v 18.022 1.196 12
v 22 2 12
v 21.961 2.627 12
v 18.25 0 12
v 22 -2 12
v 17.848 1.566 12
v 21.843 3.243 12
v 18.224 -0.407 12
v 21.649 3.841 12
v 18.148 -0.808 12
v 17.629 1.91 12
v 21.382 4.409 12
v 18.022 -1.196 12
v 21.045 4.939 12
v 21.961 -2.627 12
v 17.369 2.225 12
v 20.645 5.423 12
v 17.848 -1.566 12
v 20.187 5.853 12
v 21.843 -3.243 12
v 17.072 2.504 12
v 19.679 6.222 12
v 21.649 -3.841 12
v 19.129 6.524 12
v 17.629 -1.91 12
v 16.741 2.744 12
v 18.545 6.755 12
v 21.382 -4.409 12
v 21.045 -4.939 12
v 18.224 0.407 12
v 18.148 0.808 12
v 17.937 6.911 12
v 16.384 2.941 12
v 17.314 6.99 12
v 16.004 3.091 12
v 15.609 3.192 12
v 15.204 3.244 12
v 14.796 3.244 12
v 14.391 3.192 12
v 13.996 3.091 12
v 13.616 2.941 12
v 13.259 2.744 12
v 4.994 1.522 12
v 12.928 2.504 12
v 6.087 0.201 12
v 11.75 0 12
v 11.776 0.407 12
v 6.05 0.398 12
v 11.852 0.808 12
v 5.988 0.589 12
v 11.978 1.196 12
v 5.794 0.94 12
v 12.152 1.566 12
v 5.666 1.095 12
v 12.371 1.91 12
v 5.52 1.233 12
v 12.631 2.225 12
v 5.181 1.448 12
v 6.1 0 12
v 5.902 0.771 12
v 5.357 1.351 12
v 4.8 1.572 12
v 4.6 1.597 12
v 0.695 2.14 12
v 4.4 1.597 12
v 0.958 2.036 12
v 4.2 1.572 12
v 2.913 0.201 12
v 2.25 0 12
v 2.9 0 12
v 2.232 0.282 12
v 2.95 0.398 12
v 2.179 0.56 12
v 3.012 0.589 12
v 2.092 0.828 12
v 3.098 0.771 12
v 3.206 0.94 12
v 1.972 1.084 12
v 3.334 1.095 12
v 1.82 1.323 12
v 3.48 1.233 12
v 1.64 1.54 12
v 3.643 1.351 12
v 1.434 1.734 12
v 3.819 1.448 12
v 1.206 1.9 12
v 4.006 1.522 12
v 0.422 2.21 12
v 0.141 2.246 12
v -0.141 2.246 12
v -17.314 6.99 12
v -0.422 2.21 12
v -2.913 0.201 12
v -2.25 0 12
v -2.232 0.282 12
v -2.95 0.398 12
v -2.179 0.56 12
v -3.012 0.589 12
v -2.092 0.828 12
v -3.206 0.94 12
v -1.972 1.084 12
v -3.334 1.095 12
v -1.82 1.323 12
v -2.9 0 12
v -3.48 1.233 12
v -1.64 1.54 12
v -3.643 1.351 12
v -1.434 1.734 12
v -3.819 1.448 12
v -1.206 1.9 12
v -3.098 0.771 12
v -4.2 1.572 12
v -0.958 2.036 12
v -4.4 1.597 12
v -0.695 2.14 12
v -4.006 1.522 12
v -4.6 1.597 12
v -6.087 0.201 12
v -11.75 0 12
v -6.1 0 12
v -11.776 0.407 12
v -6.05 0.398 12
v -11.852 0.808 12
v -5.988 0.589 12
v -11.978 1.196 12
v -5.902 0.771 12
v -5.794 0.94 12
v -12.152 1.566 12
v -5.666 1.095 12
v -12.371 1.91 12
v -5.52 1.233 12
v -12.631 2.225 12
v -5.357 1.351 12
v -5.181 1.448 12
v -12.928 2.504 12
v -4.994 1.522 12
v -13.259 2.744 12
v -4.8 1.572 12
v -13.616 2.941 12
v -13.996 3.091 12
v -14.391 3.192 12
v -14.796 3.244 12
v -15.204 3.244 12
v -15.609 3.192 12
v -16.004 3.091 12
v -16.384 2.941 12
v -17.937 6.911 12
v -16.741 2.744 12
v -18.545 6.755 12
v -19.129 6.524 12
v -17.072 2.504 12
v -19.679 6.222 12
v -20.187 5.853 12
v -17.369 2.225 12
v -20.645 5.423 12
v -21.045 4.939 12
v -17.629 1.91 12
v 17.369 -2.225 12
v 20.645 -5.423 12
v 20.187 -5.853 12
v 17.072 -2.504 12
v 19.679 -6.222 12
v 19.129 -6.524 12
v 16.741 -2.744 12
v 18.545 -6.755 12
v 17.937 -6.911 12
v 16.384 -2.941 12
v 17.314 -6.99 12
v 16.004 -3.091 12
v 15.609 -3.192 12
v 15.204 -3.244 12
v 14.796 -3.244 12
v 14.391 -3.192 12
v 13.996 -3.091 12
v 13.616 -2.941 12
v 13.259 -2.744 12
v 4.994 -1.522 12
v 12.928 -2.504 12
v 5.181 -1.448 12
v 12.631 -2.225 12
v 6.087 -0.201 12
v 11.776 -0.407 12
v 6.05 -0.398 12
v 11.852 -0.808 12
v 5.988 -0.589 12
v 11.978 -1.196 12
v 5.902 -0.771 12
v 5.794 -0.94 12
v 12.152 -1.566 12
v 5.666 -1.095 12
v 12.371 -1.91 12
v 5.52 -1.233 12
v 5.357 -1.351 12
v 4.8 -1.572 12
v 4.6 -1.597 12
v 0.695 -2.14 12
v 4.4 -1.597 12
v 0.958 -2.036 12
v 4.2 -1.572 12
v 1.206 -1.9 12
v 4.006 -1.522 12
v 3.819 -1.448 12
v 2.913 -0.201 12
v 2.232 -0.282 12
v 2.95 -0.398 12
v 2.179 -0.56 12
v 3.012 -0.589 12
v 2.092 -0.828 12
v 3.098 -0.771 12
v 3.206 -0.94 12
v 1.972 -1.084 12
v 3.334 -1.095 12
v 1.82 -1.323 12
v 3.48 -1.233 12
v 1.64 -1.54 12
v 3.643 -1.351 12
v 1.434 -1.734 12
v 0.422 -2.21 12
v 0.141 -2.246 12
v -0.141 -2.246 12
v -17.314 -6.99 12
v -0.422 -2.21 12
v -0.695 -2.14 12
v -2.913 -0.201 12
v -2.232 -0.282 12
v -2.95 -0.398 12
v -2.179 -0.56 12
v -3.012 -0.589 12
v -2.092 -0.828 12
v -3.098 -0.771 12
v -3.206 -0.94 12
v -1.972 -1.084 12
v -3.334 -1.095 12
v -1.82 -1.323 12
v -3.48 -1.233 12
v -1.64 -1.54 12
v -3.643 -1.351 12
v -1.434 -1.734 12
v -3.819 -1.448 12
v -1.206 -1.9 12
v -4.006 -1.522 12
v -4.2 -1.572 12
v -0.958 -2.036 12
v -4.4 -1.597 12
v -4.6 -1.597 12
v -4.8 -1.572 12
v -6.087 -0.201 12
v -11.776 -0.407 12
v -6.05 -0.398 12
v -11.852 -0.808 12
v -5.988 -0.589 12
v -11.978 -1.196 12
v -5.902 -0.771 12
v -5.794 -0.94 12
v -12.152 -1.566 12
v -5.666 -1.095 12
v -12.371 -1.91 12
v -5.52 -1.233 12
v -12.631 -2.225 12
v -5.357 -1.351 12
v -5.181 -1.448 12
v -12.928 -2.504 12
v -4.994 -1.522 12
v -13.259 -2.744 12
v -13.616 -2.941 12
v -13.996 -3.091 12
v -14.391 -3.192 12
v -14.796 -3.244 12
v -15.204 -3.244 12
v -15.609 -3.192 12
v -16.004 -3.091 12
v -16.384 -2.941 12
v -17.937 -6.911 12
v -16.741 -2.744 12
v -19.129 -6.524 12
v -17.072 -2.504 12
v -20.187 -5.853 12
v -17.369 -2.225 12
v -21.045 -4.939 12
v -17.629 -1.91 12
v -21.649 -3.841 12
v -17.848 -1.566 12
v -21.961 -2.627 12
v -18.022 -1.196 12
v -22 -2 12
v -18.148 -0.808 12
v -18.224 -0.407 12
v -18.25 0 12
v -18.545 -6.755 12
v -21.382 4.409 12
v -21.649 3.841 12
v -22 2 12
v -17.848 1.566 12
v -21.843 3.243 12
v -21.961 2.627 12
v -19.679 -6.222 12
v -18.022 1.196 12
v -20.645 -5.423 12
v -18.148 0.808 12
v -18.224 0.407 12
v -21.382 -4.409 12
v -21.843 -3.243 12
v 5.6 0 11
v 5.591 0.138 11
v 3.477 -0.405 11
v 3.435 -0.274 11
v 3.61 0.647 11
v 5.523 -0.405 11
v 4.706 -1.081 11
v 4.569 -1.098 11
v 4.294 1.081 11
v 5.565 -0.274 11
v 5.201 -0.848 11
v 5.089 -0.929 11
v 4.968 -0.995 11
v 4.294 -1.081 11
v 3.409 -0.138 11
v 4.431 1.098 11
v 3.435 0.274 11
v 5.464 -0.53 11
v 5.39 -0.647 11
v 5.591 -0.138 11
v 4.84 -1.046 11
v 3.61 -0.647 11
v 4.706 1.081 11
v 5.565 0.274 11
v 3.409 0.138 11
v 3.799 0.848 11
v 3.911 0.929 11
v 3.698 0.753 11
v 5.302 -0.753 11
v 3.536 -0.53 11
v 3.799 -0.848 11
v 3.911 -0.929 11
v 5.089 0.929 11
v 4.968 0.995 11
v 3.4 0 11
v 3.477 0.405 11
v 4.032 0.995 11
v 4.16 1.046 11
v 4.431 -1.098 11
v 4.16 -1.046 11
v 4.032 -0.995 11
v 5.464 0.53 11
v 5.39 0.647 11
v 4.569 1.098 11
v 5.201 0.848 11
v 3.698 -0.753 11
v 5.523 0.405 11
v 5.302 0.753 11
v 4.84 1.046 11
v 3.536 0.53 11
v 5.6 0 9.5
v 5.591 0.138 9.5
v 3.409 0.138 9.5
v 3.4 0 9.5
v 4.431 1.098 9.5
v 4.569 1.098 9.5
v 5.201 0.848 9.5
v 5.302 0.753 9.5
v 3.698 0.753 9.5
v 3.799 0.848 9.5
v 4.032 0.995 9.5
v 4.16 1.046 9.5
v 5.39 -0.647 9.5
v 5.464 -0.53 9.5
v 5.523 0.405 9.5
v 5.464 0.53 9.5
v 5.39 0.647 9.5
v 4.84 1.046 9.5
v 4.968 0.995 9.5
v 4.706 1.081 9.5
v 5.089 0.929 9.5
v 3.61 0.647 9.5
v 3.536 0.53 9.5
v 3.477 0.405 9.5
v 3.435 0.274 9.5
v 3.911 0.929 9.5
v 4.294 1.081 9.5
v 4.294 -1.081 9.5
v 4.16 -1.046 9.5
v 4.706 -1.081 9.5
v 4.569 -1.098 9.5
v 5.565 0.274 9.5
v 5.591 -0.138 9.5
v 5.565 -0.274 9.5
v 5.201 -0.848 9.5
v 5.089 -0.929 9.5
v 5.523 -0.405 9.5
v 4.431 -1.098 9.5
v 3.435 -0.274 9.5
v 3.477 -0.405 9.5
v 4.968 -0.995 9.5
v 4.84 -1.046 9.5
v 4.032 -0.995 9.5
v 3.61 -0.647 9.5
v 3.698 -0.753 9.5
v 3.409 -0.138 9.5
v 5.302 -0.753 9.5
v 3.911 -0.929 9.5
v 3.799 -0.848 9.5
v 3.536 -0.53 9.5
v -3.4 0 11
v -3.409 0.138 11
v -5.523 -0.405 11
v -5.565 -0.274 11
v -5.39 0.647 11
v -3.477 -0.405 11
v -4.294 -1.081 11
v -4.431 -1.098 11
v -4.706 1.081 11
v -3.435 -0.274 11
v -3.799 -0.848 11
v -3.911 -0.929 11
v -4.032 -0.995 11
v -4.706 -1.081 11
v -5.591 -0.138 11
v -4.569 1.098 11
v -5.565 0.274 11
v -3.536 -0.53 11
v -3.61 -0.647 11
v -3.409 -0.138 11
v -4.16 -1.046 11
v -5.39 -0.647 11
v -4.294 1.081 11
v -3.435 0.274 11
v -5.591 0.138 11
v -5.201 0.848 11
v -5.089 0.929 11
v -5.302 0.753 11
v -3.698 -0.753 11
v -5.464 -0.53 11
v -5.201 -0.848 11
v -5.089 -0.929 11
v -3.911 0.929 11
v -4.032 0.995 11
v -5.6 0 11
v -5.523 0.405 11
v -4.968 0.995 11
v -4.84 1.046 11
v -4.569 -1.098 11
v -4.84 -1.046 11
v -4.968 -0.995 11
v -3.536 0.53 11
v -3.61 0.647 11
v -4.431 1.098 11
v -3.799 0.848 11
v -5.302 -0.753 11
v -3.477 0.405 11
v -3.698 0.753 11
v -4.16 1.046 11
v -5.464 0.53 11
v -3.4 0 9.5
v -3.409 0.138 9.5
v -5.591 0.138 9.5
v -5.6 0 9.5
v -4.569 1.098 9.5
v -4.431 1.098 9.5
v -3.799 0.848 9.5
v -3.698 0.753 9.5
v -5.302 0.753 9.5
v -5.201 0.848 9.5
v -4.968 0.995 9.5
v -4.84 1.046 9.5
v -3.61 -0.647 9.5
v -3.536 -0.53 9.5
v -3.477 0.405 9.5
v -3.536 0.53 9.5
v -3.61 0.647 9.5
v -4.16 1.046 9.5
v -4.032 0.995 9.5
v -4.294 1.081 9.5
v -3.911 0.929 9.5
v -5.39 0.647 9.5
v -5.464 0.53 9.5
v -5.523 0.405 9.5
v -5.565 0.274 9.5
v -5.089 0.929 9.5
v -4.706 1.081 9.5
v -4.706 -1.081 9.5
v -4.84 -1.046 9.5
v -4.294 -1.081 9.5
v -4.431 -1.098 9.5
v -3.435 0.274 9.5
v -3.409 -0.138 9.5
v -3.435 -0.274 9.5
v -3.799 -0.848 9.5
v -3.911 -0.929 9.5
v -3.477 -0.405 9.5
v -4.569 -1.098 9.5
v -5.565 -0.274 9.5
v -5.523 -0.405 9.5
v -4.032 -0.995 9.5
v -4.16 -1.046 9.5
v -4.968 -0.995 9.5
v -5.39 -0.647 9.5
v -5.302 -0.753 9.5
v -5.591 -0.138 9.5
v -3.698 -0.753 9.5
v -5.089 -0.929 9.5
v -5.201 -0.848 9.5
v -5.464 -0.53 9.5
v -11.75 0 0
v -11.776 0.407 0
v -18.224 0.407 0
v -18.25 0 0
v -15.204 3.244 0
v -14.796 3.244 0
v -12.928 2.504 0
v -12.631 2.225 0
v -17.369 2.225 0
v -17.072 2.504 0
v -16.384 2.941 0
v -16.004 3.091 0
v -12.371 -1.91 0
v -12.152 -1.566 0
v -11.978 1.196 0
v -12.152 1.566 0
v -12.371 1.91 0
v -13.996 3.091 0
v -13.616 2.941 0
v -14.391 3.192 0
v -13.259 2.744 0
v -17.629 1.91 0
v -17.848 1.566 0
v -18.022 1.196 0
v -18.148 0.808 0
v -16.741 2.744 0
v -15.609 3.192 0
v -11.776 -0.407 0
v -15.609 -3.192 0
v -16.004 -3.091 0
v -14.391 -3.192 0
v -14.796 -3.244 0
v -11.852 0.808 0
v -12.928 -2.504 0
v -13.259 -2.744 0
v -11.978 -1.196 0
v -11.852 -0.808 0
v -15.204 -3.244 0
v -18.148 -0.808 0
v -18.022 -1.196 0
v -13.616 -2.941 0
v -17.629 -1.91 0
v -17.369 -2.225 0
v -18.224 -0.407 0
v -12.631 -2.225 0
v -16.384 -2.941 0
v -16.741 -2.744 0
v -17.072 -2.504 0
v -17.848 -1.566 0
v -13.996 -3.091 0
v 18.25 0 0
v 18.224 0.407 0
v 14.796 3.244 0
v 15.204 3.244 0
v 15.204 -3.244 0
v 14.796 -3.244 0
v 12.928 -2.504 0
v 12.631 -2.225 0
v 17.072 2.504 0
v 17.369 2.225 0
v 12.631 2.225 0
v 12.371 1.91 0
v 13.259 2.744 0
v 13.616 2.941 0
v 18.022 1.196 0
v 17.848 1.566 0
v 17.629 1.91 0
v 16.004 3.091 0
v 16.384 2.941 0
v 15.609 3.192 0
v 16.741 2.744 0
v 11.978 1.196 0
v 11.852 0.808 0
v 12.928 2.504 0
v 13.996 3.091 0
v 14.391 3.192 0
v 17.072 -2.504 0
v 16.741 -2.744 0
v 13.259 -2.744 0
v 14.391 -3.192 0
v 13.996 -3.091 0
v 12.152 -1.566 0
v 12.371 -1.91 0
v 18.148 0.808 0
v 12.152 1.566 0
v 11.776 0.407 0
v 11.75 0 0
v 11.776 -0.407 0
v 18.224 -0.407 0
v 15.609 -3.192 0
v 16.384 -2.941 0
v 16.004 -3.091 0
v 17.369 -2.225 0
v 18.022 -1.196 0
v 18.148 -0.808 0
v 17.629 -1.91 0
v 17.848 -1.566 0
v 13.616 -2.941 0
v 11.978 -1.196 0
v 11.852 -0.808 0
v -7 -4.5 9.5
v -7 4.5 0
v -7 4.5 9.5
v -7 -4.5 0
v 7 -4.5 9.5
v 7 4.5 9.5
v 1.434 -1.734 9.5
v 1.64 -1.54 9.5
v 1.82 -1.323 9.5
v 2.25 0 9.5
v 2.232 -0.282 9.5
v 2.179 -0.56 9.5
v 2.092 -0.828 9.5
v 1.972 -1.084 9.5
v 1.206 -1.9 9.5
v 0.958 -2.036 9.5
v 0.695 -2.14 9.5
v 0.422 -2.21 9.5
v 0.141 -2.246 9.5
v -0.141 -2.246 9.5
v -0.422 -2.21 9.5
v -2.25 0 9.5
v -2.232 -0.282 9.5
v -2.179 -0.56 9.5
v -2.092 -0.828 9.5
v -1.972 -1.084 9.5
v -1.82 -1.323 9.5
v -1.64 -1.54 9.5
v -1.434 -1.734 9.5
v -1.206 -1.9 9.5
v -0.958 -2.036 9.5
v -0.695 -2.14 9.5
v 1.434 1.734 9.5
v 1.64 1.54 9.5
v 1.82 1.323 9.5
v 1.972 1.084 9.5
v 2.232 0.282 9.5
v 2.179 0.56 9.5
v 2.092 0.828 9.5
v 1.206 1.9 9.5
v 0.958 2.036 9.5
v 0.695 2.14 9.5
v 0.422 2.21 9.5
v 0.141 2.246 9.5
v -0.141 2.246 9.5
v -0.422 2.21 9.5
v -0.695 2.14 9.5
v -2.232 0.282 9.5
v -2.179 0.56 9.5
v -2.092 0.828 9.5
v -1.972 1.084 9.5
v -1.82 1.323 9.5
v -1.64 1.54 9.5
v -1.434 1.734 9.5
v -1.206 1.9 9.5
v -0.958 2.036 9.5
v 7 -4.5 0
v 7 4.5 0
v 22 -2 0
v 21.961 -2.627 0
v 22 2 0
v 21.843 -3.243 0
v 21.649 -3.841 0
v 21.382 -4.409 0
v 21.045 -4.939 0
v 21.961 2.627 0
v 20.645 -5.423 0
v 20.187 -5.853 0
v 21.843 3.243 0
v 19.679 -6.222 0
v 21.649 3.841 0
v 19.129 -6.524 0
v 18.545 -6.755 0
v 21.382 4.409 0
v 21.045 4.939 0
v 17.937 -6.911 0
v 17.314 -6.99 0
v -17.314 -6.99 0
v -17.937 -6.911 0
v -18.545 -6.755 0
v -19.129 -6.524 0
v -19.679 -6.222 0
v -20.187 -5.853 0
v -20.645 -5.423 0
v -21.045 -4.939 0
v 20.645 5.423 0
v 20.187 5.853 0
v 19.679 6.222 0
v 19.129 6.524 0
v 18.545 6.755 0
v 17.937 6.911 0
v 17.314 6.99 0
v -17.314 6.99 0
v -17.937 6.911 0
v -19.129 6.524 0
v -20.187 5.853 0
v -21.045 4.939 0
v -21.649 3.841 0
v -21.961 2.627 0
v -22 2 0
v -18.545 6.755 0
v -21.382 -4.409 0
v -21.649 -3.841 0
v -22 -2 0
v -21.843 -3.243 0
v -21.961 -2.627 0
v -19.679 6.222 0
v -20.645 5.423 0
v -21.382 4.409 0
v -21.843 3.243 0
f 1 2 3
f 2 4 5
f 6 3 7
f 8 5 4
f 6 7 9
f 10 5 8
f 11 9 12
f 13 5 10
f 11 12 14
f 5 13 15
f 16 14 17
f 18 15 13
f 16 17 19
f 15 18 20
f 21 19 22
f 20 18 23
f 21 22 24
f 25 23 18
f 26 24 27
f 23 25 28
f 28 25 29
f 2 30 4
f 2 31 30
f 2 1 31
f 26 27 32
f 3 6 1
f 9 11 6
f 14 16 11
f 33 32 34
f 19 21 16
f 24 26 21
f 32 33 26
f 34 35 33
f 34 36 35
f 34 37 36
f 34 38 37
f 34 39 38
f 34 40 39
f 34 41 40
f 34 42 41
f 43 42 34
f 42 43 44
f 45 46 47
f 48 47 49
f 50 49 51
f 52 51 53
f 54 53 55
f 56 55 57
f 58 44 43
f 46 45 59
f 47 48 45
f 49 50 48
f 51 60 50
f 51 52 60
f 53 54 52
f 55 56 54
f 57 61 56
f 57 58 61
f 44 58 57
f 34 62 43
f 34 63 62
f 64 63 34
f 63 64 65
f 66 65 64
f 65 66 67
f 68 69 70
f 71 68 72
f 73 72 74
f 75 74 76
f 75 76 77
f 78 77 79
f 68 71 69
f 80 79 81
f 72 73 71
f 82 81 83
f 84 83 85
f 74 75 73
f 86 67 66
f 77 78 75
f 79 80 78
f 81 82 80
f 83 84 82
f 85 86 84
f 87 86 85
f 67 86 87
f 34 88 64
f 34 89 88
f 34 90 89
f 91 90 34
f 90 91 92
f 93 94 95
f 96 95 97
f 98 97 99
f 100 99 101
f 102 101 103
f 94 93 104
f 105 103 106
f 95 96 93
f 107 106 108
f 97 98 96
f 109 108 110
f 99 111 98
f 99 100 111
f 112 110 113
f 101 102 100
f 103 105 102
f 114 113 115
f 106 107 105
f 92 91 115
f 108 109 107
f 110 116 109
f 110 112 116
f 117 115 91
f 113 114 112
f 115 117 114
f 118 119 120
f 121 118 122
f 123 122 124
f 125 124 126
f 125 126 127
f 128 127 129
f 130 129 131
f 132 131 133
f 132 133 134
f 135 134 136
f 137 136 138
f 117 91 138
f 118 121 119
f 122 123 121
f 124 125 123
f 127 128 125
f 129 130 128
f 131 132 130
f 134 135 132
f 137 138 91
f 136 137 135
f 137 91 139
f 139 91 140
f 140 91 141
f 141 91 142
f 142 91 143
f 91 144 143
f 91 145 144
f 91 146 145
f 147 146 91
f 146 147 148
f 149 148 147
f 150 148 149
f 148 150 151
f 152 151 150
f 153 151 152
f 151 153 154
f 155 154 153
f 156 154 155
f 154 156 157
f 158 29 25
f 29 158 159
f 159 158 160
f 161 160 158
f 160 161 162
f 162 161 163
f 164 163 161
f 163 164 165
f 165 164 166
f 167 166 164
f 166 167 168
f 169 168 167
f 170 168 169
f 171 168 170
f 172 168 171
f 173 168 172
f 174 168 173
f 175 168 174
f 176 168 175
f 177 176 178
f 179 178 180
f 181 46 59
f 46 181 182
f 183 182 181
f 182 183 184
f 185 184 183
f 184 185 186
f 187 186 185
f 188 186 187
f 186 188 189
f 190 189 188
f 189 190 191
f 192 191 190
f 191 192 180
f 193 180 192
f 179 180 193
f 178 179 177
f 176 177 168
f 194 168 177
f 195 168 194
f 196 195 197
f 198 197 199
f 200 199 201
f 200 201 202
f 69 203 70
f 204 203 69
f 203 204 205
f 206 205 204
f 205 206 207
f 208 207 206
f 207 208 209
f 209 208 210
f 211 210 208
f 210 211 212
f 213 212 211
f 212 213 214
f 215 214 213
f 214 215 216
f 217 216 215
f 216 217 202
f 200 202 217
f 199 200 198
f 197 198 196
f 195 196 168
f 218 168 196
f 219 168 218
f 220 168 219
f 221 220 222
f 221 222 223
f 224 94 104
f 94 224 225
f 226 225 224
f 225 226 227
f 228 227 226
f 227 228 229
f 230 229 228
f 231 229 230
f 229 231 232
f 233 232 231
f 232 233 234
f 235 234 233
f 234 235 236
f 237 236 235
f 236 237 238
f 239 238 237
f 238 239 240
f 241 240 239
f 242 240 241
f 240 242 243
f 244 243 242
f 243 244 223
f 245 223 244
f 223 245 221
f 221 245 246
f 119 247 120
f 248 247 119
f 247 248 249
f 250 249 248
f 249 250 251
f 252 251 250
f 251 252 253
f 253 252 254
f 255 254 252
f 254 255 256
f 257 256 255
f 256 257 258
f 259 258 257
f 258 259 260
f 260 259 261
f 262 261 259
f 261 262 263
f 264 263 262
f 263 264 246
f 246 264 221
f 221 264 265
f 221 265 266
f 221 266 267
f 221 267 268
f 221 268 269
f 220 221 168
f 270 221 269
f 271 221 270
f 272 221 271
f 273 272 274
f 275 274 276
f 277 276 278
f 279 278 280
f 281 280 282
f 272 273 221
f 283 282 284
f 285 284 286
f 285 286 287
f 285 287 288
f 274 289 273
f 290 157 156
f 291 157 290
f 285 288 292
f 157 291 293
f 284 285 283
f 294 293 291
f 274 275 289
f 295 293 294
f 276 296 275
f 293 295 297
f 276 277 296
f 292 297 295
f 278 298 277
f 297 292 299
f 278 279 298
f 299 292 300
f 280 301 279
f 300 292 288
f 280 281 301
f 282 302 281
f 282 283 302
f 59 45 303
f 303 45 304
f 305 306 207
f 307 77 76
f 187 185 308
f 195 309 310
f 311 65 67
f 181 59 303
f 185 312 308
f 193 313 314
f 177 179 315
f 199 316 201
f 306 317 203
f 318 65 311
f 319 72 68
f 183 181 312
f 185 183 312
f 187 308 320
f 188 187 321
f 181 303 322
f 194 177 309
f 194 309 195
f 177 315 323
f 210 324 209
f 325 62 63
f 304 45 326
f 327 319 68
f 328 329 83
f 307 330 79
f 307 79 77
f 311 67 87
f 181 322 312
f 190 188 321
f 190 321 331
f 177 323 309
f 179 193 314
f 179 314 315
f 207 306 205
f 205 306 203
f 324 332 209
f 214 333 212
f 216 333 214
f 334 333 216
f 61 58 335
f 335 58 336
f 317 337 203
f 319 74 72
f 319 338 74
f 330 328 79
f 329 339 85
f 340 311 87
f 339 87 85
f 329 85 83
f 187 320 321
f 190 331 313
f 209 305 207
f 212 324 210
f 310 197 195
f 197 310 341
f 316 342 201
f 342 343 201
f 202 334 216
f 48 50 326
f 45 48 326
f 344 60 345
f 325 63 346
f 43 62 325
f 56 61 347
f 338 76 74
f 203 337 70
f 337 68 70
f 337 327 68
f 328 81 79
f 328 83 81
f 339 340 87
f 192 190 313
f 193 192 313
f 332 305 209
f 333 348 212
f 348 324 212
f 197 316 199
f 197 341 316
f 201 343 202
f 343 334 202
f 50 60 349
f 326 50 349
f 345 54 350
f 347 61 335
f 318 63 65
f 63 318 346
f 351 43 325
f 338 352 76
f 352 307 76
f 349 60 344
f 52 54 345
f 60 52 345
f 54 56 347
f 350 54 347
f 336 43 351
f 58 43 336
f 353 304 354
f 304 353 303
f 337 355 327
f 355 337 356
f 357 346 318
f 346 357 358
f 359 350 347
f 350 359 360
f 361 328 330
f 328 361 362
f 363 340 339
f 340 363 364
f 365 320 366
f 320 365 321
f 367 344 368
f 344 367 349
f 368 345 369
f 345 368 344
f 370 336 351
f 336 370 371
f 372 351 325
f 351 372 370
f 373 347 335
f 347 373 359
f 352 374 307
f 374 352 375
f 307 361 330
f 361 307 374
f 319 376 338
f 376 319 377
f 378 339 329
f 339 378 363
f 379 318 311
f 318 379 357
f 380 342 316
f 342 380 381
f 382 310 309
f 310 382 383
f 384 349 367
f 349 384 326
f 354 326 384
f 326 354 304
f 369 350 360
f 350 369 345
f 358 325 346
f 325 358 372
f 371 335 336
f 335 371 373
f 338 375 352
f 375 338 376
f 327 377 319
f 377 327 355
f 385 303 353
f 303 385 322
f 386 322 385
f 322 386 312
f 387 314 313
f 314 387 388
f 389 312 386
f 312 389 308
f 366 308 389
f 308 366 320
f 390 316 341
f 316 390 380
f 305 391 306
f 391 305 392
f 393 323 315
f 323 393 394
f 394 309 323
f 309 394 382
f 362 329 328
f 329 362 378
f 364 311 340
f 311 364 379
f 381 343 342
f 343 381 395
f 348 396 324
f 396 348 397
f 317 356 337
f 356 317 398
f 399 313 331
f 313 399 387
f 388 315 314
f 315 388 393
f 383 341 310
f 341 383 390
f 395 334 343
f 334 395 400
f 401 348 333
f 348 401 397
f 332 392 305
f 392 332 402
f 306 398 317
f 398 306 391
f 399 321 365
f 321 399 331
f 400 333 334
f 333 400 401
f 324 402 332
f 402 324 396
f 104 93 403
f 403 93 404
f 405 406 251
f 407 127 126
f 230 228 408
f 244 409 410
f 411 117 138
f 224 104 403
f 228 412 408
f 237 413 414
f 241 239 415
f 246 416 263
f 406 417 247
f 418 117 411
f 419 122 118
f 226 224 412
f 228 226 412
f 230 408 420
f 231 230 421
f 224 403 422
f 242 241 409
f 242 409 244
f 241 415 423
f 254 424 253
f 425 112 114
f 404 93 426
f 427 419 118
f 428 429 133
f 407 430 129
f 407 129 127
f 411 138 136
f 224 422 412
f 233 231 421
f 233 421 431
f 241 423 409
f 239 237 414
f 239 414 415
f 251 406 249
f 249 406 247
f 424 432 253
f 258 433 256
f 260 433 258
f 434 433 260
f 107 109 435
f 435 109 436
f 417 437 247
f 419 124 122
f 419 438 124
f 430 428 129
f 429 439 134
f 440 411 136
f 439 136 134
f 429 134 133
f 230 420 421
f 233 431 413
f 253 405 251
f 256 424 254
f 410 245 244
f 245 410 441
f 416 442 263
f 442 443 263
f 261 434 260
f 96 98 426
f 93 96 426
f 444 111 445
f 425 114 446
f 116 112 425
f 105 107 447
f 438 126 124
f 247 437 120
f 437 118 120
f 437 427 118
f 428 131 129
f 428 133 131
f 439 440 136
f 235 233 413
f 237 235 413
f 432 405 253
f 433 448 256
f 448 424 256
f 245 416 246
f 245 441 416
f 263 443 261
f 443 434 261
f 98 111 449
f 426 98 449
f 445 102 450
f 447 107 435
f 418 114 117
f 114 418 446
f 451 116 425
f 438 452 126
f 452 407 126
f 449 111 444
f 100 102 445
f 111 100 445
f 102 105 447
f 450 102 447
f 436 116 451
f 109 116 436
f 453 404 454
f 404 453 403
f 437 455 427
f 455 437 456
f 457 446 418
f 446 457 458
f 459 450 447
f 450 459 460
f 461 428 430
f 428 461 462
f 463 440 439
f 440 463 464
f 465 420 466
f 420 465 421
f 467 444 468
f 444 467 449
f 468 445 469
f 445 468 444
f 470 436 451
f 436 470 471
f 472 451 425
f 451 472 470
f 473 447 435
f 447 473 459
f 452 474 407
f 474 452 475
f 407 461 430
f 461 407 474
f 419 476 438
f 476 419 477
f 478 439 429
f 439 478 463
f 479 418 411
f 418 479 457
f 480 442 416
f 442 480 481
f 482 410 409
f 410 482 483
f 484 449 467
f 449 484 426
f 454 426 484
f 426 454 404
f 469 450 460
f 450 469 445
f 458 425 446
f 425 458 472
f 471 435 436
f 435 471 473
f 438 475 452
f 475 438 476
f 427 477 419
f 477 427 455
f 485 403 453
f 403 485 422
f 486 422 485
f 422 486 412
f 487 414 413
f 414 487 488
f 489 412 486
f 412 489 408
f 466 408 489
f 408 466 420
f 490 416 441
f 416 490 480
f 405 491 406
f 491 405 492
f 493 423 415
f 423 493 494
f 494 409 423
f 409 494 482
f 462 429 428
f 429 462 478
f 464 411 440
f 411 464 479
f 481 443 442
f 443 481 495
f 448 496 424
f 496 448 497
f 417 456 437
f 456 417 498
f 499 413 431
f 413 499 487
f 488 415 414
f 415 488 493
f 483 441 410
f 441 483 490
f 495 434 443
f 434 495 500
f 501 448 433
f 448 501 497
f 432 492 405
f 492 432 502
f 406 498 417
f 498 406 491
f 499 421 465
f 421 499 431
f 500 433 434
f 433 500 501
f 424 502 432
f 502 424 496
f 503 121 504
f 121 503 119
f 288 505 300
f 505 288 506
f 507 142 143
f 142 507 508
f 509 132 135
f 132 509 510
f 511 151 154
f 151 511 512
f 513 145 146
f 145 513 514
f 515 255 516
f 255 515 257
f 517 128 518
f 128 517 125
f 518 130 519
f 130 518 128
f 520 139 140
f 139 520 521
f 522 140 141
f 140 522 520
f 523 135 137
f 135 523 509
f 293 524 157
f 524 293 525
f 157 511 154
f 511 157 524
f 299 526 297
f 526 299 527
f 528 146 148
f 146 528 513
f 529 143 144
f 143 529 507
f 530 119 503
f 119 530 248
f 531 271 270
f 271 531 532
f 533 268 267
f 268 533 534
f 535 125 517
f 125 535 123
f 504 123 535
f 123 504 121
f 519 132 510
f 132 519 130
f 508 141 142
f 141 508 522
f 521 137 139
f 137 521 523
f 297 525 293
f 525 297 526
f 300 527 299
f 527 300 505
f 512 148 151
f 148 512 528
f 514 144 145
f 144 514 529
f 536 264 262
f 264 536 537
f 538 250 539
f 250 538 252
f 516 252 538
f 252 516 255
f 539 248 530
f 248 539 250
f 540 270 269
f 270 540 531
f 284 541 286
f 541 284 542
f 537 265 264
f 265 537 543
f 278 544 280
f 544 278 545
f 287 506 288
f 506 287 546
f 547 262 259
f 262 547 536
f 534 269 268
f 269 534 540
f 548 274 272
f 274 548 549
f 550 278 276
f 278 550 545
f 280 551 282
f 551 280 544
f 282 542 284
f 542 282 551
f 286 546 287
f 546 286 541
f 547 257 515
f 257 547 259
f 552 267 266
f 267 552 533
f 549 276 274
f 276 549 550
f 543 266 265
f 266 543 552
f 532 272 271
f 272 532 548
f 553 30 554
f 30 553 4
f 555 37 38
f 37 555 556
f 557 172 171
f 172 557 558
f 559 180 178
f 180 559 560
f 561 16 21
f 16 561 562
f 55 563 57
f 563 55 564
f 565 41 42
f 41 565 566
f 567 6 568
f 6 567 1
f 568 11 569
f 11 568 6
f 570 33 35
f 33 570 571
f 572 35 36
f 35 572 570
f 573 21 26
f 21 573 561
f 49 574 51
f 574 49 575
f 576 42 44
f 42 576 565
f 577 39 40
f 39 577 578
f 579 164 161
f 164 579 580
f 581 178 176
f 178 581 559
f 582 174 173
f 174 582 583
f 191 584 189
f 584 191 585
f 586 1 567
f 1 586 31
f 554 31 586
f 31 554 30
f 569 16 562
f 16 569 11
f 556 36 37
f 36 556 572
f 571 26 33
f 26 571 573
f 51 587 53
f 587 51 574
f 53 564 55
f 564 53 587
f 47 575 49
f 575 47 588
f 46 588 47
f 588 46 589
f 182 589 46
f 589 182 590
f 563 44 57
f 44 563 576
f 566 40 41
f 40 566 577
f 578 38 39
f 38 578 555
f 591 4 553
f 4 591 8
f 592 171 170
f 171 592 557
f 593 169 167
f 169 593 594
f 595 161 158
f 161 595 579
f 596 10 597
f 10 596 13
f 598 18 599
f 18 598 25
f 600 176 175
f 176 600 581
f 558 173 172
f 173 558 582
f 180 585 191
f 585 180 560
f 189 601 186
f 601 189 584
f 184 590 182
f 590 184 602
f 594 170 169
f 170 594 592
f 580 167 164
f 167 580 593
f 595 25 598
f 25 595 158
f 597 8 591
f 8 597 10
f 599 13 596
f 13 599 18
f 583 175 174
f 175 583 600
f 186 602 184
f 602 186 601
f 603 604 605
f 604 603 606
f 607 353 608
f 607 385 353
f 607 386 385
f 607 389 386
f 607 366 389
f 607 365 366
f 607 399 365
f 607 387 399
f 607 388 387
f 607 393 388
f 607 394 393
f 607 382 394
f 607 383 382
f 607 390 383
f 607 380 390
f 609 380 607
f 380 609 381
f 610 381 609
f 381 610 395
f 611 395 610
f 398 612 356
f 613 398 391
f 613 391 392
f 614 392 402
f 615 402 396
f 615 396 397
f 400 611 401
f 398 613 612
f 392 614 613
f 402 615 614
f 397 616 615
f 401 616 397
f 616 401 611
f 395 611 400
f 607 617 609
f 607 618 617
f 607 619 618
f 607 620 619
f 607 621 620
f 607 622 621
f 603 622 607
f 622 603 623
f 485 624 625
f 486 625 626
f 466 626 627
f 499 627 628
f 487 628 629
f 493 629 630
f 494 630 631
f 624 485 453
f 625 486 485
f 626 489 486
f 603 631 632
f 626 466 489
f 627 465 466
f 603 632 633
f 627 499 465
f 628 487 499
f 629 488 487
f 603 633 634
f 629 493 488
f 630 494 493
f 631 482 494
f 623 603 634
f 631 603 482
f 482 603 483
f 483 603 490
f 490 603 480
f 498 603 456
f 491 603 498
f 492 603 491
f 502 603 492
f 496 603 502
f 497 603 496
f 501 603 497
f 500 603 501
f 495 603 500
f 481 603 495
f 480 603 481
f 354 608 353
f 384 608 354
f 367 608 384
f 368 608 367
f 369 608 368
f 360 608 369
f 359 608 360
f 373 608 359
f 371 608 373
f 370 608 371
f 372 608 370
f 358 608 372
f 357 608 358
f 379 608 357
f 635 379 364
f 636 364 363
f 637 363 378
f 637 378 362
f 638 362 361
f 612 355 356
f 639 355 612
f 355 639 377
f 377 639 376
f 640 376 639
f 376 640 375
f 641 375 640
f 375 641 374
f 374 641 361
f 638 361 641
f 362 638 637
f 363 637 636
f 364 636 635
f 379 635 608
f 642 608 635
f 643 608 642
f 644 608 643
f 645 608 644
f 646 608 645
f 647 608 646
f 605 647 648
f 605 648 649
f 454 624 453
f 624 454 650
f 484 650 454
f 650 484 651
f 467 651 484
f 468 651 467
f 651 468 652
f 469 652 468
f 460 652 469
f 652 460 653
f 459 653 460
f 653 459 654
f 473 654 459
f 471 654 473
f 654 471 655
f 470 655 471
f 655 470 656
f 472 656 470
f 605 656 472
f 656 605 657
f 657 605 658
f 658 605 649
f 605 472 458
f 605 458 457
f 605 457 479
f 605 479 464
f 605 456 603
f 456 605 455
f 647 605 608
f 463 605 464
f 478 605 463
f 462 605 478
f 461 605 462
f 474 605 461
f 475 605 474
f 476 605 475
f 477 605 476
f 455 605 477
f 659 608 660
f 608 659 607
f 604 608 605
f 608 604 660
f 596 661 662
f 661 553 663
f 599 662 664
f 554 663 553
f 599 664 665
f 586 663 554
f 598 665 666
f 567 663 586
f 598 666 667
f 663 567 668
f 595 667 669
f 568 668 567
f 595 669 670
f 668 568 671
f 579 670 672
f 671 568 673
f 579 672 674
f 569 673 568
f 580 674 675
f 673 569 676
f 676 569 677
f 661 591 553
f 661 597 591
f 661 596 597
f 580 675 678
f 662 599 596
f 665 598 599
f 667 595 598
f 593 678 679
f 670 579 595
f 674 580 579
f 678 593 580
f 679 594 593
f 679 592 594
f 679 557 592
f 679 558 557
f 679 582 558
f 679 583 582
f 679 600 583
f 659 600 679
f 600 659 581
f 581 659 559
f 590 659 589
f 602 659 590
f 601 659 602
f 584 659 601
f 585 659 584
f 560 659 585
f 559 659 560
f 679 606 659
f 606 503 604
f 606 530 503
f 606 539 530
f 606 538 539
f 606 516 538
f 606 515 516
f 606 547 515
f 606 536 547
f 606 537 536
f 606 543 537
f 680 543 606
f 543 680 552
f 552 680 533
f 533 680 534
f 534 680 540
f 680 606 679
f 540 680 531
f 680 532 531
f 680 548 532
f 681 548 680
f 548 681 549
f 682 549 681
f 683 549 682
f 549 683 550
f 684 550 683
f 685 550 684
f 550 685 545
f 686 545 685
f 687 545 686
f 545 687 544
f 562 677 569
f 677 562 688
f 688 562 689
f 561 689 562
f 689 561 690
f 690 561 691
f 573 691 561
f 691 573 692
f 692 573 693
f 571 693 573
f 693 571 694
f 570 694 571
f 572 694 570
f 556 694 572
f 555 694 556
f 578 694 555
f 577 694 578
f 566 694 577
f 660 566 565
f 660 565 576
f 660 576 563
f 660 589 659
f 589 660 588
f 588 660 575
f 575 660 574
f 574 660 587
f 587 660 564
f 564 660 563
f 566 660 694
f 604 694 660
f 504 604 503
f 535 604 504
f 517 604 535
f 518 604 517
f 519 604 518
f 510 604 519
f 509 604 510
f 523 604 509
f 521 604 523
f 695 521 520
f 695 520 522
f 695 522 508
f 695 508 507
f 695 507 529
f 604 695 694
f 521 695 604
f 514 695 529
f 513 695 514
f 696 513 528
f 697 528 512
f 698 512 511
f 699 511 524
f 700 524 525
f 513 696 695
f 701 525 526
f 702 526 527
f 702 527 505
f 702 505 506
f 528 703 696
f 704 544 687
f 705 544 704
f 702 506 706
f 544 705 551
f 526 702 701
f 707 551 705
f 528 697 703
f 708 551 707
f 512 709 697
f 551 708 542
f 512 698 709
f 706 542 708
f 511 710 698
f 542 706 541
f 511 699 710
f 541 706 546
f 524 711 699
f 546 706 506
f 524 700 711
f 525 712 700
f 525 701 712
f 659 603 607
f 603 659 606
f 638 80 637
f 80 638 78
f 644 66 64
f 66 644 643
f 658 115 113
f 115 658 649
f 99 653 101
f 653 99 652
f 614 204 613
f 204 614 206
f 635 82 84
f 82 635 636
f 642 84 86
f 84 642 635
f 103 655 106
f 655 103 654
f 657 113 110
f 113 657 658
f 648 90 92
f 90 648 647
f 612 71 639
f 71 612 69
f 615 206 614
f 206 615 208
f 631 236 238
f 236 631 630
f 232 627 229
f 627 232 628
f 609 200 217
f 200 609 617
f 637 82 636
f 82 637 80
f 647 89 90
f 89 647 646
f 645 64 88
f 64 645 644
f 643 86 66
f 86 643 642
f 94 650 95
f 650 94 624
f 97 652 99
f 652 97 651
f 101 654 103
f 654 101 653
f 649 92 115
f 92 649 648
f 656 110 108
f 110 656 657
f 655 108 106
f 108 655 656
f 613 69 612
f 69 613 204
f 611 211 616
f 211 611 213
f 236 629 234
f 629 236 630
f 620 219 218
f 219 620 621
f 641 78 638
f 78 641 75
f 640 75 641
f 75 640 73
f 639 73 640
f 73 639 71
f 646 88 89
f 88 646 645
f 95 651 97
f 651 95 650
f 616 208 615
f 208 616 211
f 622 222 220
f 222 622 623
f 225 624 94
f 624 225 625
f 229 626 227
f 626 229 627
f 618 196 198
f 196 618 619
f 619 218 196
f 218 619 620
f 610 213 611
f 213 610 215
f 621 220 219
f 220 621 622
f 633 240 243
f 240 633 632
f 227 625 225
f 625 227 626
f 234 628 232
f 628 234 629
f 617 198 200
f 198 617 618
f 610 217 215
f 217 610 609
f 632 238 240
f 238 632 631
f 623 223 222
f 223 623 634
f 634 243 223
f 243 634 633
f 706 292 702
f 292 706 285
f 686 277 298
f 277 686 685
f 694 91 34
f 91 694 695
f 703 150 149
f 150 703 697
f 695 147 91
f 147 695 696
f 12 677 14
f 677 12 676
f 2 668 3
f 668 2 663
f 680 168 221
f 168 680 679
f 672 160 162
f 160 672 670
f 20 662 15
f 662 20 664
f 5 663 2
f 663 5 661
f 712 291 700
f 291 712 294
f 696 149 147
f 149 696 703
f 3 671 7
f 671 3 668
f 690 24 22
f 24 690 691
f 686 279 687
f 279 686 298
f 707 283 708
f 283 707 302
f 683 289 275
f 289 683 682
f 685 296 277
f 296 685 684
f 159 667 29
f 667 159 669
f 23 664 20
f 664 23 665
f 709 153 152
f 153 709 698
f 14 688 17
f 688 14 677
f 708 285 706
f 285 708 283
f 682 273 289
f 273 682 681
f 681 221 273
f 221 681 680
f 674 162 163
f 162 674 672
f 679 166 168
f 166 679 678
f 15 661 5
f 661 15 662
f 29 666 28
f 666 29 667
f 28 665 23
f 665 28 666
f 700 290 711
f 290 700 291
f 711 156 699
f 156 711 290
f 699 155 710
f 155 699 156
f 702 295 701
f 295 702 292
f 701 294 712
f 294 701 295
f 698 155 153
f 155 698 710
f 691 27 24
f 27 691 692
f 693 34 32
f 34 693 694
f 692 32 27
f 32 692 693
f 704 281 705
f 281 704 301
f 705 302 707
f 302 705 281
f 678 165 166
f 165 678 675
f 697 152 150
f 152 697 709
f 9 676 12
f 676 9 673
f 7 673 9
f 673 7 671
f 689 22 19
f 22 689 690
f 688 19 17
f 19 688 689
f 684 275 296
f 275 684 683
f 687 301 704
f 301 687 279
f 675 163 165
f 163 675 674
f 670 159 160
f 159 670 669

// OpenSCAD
$fn = 50;


difference() {
	union() {
		hull() {
			translate(v = [-17.0000000000, 2.0000000000, 0]) {
				cylinder(h = 12, r = 5);
			}
			translate(v = [17.0000000000, 2.0000000000, 0]) {
				cylinder(h = 12, r = 5);
			}
			translate(v = [-17.0000000000, -2.0000000000, 0]) {
				cylinder(h = 12, r = 5);
			}
			translate(v = [17.0000000000, -2.0000000000, 0]) {
				cylinder(h = 12, r = 5);
			}
		}
	}
	union() {
		translate(v = [4.5000000000, 0, 12]) {
			rotate(a = [0, 0, 0]) {
				difference() {
					union() {
						#translate(v = [0, 0, -4.0000000000]) {
							cylinder(h = 4, r = 0.8500000000);
						}
						#translate(v = [0, 0, -1.0000000000]) {
							cylinder(h = 1.0000000000, r1 = 1.1000000000, r2 = 1.6000000000);
						}
						#translate(v = [0, 0, -4.0000000000]) {
							cylinder(h = 4, r = 1.1000000000);
						}
						#translate(v = [0, 0, -4.0000000000]) {
							cylinder(h = 4, r = 0.8500000000);
						}
					}
					union();
				}
			}
		}
		translate(v = [-4.5000000000, 0, 12]) {
			rotate(a = [0, 0, 0]) {
				difference() {
					union() {
						#translate(v = [0, 0, -4.0000000000]) {
							cylinder(h = 4, r = 0.8500000000);
						}
						#translate(v = [0, 0, -1.0000000000]) {
							cylinder(h = 1.0000000000, r1 = 1.1000000000, r2 = 1.6000000000);
						}
						#translate(v = [0, 0, -4.0000000000]) {
							cylinder(h = 4, r = 1.1000000000);
						}
						#translate(v = [0, 0, -4.0000000000]) {
							cylinder(h = 4, r = 0.8500000000);
						}
					}
					union();
				}
			}
		}
		translate(v = [-15.0000000000, 0.0000000000, -100.0000000000]) {
			cylinder(h = 200, r = 3.2500000000);
		}
		translate(v = [15.0000000000, 0.0000000000, -100.0000000000]) {
			cylinder(h = 200, r = 3.2500000000);
		}
		translate(v = [15.0000000000, 0.0000000000, -100.0000000000]) {
			cylinder(h = 200, r = 3.2500000000);
		}
		translate(v = [-15.0000000000, 0.0000000000, -100.0000000000]) {
			cylinder(h = 200, r = 1.8000000000);
		}
		translate(v = [15.0000000000, 0.0000000000, -100.0000000000]) {
			cylinder(h = 200, r = 1.8000000000);
		}
		translate(v = [-15.0000000000, 0.0000000000, -100.0000000000]) {
			cylinder(h = 200, r = 1.8000000000);
		}
		translate(v = [15.0000000000, 0.0000000000, -100.0000000000]) {
			cylinder(h = 200, r = 1.8000000000);
		}
		translate(v = [-15.0000000000, 0.0000000000, -100.0000000000]) {
			cylinder(h = 200, r = 1.8000000000);
		}
		translate(v = [15.0000000000, 0.0000000000, -100.0000000000]) {
			cylinder(h = 200, r = 1.8000000000);
		}
		#translate(v = [-7.0000000000, -4.5000000000, 0]) {
			cube(size = [14, 9, 9.5000000000]);
		}
		#cylinder(h = 12, r = 2.2500000000);
	}
}
